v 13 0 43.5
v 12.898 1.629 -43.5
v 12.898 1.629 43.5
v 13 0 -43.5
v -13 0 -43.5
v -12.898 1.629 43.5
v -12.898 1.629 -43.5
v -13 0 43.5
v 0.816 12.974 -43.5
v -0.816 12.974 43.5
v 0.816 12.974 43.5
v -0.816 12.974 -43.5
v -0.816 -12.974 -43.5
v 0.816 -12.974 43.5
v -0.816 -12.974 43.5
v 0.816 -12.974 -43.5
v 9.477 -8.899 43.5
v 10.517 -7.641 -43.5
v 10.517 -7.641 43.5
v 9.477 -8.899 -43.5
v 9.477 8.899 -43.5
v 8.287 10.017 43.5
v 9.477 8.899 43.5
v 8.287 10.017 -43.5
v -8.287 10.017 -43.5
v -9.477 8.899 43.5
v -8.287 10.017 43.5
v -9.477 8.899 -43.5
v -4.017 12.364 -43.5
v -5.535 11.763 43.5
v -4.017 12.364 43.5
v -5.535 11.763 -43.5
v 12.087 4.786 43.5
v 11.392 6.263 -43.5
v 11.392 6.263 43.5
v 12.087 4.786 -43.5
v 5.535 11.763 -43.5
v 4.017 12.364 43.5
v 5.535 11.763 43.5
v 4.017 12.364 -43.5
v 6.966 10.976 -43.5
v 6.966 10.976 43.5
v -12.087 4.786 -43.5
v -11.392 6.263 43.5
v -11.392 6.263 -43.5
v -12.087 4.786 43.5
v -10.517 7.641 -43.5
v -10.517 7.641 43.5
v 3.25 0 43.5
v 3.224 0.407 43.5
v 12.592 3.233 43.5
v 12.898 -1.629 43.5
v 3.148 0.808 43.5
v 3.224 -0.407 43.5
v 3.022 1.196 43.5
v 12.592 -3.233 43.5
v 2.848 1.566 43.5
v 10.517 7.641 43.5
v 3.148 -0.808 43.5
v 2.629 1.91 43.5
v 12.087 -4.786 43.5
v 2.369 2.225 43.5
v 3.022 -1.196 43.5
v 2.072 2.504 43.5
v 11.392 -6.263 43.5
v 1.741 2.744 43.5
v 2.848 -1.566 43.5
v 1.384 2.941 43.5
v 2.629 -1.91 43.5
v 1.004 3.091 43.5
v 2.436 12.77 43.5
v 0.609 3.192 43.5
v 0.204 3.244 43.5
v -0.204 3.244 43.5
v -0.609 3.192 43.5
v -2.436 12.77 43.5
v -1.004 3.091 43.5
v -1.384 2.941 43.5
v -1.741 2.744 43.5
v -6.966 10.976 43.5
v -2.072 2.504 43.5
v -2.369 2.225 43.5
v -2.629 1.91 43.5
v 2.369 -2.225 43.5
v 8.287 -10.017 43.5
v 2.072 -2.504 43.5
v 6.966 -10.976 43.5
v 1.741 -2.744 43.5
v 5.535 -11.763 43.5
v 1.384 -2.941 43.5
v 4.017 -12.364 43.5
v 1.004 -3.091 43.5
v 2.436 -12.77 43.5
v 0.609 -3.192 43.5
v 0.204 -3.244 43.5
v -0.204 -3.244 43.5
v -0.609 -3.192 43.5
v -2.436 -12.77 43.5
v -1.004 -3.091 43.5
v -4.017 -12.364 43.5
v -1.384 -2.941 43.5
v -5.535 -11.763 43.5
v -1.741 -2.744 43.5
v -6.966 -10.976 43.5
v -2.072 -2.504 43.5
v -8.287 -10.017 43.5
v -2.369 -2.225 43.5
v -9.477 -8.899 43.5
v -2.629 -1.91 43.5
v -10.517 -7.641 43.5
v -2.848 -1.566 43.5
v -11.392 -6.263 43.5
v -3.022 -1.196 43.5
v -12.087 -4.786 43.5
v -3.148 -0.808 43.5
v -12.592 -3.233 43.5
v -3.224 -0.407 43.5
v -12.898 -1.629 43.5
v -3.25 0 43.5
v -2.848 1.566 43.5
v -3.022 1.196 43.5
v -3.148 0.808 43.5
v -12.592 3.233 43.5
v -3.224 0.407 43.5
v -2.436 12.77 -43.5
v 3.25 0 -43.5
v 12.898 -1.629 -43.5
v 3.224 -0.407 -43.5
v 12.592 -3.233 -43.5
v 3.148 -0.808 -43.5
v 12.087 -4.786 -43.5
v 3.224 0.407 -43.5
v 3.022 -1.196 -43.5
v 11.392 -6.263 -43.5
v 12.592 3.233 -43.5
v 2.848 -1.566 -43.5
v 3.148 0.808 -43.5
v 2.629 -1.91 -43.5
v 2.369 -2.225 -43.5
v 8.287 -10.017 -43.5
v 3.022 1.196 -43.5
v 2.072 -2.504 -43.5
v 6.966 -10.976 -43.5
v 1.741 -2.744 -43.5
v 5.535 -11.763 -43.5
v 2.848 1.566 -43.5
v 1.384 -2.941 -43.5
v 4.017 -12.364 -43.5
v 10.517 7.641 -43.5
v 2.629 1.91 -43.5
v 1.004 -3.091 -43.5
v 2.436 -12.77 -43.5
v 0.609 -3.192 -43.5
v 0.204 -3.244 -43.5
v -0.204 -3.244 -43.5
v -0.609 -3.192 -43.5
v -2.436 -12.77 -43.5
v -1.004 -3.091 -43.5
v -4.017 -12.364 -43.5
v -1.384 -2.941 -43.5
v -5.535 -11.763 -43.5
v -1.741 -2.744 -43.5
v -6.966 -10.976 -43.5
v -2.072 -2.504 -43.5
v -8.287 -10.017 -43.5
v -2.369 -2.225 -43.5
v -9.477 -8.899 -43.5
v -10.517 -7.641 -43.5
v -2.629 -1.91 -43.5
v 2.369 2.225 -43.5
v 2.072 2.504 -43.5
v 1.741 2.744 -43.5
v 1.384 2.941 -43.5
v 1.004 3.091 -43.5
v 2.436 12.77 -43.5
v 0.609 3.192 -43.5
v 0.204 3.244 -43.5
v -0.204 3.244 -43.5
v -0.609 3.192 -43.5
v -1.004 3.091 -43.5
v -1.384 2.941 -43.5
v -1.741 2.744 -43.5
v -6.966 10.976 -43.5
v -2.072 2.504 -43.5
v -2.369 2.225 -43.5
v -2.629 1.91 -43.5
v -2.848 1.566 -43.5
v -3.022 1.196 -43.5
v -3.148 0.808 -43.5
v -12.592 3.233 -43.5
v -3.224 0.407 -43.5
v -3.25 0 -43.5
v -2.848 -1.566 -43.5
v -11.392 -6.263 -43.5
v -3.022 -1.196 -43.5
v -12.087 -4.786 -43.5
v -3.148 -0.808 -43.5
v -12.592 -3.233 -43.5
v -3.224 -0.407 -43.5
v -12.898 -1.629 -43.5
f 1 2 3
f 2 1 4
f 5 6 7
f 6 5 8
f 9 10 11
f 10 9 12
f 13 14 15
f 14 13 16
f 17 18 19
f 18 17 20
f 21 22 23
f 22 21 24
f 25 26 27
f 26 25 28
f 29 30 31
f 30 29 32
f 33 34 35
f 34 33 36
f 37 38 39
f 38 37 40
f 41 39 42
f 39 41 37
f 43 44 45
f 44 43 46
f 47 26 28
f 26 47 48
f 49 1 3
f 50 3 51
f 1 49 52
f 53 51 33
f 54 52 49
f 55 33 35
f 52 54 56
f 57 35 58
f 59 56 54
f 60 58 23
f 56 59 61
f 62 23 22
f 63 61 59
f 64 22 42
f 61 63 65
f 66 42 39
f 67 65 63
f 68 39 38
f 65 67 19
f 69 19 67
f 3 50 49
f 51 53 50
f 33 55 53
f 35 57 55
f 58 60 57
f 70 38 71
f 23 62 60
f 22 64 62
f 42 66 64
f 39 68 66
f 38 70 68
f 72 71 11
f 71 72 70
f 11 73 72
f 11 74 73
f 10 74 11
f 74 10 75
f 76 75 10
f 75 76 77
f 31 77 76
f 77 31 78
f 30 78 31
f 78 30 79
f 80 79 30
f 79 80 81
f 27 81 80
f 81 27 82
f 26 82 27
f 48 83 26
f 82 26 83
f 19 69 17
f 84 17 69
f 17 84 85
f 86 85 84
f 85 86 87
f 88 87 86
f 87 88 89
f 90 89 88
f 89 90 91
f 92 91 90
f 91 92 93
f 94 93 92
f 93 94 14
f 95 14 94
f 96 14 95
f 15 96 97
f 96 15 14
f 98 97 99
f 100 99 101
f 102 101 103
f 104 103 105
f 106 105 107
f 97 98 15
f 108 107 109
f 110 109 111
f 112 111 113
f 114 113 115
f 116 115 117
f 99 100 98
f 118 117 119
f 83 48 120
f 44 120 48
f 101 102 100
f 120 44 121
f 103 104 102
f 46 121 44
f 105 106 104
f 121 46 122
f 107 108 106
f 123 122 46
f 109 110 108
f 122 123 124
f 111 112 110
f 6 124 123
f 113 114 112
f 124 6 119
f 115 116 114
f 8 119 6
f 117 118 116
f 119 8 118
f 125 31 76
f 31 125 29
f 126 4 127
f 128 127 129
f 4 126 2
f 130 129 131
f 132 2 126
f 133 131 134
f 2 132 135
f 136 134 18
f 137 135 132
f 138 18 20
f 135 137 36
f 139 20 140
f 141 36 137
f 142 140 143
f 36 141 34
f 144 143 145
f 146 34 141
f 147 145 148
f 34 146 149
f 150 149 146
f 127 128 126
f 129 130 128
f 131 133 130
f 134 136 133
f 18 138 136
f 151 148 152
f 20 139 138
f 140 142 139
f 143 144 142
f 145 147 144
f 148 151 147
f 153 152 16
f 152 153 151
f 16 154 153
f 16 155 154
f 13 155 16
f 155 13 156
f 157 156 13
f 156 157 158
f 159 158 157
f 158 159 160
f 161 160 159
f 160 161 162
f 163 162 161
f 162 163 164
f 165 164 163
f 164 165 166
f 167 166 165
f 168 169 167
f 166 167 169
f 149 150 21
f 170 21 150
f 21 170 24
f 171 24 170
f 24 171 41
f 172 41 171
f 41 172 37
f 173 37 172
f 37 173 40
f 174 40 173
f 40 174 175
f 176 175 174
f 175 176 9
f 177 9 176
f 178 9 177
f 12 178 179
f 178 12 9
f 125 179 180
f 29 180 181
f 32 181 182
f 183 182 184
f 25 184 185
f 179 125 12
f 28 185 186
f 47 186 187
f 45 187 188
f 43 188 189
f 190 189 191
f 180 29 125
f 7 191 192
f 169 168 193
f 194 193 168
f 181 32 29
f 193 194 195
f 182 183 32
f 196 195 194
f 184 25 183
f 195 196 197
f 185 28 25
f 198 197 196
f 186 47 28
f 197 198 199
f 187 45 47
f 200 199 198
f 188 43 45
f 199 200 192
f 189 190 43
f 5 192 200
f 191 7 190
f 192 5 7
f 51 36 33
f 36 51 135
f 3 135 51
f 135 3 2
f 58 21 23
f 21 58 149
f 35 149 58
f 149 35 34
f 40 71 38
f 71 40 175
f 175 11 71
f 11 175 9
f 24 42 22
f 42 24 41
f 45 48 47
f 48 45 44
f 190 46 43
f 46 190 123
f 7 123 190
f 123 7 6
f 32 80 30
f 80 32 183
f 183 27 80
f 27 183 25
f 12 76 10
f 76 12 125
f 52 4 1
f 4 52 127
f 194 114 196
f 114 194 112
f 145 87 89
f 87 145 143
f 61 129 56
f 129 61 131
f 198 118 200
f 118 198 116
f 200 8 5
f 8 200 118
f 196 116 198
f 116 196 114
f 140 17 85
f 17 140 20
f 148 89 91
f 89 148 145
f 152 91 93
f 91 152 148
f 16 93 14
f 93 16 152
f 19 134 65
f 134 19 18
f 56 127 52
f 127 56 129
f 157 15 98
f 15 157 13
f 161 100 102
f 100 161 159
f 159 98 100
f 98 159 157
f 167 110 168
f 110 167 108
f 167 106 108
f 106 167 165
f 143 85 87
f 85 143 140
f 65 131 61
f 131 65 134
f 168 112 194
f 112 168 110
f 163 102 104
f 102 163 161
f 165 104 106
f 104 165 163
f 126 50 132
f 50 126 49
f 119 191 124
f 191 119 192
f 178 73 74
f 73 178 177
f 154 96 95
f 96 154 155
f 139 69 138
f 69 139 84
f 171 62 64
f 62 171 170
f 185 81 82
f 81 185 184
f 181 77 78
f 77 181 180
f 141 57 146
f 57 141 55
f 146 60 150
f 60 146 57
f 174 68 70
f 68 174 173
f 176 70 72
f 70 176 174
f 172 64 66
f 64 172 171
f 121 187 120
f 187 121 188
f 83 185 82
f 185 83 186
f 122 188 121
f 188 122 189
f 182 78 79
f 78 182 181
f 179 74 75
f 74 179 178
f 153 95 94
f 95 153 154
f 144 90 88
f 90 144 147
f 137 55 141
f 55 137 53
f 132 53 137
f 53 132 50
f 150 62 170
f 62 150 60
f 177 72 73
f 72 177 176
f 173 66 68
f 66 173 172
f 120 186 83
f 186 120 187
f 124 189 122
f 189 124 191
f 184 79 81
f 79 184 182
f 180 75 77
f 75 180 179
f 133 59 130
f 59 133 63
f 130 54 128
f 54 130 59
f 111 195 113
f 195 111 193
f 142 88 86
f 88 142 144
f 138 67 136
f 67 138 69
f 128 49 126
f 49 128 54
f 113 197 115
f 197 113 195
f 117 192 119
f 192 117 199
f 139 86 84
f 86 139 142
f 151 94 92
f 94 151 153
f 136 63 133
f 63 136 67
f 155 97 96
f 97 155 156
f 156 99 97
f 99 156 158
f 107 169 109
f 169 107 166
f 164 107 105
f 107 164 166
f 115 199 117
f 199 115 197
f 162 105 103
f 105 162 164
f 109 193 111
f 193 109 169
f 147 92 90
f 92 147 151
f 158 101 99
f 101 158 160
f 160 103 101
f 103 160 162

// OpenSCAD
$fn = 50;


difference() {
	union() {
		translate(v = [0, 0, -43.5000000000]) {
			cylinder(h = 87, r = 13.0000000000);
		}
	}
	union() {
		translate(v = [0, 0, -100.0000000000]) {
			cylinder(h = 200, r = 3.2500000000);
		}
	}
}
